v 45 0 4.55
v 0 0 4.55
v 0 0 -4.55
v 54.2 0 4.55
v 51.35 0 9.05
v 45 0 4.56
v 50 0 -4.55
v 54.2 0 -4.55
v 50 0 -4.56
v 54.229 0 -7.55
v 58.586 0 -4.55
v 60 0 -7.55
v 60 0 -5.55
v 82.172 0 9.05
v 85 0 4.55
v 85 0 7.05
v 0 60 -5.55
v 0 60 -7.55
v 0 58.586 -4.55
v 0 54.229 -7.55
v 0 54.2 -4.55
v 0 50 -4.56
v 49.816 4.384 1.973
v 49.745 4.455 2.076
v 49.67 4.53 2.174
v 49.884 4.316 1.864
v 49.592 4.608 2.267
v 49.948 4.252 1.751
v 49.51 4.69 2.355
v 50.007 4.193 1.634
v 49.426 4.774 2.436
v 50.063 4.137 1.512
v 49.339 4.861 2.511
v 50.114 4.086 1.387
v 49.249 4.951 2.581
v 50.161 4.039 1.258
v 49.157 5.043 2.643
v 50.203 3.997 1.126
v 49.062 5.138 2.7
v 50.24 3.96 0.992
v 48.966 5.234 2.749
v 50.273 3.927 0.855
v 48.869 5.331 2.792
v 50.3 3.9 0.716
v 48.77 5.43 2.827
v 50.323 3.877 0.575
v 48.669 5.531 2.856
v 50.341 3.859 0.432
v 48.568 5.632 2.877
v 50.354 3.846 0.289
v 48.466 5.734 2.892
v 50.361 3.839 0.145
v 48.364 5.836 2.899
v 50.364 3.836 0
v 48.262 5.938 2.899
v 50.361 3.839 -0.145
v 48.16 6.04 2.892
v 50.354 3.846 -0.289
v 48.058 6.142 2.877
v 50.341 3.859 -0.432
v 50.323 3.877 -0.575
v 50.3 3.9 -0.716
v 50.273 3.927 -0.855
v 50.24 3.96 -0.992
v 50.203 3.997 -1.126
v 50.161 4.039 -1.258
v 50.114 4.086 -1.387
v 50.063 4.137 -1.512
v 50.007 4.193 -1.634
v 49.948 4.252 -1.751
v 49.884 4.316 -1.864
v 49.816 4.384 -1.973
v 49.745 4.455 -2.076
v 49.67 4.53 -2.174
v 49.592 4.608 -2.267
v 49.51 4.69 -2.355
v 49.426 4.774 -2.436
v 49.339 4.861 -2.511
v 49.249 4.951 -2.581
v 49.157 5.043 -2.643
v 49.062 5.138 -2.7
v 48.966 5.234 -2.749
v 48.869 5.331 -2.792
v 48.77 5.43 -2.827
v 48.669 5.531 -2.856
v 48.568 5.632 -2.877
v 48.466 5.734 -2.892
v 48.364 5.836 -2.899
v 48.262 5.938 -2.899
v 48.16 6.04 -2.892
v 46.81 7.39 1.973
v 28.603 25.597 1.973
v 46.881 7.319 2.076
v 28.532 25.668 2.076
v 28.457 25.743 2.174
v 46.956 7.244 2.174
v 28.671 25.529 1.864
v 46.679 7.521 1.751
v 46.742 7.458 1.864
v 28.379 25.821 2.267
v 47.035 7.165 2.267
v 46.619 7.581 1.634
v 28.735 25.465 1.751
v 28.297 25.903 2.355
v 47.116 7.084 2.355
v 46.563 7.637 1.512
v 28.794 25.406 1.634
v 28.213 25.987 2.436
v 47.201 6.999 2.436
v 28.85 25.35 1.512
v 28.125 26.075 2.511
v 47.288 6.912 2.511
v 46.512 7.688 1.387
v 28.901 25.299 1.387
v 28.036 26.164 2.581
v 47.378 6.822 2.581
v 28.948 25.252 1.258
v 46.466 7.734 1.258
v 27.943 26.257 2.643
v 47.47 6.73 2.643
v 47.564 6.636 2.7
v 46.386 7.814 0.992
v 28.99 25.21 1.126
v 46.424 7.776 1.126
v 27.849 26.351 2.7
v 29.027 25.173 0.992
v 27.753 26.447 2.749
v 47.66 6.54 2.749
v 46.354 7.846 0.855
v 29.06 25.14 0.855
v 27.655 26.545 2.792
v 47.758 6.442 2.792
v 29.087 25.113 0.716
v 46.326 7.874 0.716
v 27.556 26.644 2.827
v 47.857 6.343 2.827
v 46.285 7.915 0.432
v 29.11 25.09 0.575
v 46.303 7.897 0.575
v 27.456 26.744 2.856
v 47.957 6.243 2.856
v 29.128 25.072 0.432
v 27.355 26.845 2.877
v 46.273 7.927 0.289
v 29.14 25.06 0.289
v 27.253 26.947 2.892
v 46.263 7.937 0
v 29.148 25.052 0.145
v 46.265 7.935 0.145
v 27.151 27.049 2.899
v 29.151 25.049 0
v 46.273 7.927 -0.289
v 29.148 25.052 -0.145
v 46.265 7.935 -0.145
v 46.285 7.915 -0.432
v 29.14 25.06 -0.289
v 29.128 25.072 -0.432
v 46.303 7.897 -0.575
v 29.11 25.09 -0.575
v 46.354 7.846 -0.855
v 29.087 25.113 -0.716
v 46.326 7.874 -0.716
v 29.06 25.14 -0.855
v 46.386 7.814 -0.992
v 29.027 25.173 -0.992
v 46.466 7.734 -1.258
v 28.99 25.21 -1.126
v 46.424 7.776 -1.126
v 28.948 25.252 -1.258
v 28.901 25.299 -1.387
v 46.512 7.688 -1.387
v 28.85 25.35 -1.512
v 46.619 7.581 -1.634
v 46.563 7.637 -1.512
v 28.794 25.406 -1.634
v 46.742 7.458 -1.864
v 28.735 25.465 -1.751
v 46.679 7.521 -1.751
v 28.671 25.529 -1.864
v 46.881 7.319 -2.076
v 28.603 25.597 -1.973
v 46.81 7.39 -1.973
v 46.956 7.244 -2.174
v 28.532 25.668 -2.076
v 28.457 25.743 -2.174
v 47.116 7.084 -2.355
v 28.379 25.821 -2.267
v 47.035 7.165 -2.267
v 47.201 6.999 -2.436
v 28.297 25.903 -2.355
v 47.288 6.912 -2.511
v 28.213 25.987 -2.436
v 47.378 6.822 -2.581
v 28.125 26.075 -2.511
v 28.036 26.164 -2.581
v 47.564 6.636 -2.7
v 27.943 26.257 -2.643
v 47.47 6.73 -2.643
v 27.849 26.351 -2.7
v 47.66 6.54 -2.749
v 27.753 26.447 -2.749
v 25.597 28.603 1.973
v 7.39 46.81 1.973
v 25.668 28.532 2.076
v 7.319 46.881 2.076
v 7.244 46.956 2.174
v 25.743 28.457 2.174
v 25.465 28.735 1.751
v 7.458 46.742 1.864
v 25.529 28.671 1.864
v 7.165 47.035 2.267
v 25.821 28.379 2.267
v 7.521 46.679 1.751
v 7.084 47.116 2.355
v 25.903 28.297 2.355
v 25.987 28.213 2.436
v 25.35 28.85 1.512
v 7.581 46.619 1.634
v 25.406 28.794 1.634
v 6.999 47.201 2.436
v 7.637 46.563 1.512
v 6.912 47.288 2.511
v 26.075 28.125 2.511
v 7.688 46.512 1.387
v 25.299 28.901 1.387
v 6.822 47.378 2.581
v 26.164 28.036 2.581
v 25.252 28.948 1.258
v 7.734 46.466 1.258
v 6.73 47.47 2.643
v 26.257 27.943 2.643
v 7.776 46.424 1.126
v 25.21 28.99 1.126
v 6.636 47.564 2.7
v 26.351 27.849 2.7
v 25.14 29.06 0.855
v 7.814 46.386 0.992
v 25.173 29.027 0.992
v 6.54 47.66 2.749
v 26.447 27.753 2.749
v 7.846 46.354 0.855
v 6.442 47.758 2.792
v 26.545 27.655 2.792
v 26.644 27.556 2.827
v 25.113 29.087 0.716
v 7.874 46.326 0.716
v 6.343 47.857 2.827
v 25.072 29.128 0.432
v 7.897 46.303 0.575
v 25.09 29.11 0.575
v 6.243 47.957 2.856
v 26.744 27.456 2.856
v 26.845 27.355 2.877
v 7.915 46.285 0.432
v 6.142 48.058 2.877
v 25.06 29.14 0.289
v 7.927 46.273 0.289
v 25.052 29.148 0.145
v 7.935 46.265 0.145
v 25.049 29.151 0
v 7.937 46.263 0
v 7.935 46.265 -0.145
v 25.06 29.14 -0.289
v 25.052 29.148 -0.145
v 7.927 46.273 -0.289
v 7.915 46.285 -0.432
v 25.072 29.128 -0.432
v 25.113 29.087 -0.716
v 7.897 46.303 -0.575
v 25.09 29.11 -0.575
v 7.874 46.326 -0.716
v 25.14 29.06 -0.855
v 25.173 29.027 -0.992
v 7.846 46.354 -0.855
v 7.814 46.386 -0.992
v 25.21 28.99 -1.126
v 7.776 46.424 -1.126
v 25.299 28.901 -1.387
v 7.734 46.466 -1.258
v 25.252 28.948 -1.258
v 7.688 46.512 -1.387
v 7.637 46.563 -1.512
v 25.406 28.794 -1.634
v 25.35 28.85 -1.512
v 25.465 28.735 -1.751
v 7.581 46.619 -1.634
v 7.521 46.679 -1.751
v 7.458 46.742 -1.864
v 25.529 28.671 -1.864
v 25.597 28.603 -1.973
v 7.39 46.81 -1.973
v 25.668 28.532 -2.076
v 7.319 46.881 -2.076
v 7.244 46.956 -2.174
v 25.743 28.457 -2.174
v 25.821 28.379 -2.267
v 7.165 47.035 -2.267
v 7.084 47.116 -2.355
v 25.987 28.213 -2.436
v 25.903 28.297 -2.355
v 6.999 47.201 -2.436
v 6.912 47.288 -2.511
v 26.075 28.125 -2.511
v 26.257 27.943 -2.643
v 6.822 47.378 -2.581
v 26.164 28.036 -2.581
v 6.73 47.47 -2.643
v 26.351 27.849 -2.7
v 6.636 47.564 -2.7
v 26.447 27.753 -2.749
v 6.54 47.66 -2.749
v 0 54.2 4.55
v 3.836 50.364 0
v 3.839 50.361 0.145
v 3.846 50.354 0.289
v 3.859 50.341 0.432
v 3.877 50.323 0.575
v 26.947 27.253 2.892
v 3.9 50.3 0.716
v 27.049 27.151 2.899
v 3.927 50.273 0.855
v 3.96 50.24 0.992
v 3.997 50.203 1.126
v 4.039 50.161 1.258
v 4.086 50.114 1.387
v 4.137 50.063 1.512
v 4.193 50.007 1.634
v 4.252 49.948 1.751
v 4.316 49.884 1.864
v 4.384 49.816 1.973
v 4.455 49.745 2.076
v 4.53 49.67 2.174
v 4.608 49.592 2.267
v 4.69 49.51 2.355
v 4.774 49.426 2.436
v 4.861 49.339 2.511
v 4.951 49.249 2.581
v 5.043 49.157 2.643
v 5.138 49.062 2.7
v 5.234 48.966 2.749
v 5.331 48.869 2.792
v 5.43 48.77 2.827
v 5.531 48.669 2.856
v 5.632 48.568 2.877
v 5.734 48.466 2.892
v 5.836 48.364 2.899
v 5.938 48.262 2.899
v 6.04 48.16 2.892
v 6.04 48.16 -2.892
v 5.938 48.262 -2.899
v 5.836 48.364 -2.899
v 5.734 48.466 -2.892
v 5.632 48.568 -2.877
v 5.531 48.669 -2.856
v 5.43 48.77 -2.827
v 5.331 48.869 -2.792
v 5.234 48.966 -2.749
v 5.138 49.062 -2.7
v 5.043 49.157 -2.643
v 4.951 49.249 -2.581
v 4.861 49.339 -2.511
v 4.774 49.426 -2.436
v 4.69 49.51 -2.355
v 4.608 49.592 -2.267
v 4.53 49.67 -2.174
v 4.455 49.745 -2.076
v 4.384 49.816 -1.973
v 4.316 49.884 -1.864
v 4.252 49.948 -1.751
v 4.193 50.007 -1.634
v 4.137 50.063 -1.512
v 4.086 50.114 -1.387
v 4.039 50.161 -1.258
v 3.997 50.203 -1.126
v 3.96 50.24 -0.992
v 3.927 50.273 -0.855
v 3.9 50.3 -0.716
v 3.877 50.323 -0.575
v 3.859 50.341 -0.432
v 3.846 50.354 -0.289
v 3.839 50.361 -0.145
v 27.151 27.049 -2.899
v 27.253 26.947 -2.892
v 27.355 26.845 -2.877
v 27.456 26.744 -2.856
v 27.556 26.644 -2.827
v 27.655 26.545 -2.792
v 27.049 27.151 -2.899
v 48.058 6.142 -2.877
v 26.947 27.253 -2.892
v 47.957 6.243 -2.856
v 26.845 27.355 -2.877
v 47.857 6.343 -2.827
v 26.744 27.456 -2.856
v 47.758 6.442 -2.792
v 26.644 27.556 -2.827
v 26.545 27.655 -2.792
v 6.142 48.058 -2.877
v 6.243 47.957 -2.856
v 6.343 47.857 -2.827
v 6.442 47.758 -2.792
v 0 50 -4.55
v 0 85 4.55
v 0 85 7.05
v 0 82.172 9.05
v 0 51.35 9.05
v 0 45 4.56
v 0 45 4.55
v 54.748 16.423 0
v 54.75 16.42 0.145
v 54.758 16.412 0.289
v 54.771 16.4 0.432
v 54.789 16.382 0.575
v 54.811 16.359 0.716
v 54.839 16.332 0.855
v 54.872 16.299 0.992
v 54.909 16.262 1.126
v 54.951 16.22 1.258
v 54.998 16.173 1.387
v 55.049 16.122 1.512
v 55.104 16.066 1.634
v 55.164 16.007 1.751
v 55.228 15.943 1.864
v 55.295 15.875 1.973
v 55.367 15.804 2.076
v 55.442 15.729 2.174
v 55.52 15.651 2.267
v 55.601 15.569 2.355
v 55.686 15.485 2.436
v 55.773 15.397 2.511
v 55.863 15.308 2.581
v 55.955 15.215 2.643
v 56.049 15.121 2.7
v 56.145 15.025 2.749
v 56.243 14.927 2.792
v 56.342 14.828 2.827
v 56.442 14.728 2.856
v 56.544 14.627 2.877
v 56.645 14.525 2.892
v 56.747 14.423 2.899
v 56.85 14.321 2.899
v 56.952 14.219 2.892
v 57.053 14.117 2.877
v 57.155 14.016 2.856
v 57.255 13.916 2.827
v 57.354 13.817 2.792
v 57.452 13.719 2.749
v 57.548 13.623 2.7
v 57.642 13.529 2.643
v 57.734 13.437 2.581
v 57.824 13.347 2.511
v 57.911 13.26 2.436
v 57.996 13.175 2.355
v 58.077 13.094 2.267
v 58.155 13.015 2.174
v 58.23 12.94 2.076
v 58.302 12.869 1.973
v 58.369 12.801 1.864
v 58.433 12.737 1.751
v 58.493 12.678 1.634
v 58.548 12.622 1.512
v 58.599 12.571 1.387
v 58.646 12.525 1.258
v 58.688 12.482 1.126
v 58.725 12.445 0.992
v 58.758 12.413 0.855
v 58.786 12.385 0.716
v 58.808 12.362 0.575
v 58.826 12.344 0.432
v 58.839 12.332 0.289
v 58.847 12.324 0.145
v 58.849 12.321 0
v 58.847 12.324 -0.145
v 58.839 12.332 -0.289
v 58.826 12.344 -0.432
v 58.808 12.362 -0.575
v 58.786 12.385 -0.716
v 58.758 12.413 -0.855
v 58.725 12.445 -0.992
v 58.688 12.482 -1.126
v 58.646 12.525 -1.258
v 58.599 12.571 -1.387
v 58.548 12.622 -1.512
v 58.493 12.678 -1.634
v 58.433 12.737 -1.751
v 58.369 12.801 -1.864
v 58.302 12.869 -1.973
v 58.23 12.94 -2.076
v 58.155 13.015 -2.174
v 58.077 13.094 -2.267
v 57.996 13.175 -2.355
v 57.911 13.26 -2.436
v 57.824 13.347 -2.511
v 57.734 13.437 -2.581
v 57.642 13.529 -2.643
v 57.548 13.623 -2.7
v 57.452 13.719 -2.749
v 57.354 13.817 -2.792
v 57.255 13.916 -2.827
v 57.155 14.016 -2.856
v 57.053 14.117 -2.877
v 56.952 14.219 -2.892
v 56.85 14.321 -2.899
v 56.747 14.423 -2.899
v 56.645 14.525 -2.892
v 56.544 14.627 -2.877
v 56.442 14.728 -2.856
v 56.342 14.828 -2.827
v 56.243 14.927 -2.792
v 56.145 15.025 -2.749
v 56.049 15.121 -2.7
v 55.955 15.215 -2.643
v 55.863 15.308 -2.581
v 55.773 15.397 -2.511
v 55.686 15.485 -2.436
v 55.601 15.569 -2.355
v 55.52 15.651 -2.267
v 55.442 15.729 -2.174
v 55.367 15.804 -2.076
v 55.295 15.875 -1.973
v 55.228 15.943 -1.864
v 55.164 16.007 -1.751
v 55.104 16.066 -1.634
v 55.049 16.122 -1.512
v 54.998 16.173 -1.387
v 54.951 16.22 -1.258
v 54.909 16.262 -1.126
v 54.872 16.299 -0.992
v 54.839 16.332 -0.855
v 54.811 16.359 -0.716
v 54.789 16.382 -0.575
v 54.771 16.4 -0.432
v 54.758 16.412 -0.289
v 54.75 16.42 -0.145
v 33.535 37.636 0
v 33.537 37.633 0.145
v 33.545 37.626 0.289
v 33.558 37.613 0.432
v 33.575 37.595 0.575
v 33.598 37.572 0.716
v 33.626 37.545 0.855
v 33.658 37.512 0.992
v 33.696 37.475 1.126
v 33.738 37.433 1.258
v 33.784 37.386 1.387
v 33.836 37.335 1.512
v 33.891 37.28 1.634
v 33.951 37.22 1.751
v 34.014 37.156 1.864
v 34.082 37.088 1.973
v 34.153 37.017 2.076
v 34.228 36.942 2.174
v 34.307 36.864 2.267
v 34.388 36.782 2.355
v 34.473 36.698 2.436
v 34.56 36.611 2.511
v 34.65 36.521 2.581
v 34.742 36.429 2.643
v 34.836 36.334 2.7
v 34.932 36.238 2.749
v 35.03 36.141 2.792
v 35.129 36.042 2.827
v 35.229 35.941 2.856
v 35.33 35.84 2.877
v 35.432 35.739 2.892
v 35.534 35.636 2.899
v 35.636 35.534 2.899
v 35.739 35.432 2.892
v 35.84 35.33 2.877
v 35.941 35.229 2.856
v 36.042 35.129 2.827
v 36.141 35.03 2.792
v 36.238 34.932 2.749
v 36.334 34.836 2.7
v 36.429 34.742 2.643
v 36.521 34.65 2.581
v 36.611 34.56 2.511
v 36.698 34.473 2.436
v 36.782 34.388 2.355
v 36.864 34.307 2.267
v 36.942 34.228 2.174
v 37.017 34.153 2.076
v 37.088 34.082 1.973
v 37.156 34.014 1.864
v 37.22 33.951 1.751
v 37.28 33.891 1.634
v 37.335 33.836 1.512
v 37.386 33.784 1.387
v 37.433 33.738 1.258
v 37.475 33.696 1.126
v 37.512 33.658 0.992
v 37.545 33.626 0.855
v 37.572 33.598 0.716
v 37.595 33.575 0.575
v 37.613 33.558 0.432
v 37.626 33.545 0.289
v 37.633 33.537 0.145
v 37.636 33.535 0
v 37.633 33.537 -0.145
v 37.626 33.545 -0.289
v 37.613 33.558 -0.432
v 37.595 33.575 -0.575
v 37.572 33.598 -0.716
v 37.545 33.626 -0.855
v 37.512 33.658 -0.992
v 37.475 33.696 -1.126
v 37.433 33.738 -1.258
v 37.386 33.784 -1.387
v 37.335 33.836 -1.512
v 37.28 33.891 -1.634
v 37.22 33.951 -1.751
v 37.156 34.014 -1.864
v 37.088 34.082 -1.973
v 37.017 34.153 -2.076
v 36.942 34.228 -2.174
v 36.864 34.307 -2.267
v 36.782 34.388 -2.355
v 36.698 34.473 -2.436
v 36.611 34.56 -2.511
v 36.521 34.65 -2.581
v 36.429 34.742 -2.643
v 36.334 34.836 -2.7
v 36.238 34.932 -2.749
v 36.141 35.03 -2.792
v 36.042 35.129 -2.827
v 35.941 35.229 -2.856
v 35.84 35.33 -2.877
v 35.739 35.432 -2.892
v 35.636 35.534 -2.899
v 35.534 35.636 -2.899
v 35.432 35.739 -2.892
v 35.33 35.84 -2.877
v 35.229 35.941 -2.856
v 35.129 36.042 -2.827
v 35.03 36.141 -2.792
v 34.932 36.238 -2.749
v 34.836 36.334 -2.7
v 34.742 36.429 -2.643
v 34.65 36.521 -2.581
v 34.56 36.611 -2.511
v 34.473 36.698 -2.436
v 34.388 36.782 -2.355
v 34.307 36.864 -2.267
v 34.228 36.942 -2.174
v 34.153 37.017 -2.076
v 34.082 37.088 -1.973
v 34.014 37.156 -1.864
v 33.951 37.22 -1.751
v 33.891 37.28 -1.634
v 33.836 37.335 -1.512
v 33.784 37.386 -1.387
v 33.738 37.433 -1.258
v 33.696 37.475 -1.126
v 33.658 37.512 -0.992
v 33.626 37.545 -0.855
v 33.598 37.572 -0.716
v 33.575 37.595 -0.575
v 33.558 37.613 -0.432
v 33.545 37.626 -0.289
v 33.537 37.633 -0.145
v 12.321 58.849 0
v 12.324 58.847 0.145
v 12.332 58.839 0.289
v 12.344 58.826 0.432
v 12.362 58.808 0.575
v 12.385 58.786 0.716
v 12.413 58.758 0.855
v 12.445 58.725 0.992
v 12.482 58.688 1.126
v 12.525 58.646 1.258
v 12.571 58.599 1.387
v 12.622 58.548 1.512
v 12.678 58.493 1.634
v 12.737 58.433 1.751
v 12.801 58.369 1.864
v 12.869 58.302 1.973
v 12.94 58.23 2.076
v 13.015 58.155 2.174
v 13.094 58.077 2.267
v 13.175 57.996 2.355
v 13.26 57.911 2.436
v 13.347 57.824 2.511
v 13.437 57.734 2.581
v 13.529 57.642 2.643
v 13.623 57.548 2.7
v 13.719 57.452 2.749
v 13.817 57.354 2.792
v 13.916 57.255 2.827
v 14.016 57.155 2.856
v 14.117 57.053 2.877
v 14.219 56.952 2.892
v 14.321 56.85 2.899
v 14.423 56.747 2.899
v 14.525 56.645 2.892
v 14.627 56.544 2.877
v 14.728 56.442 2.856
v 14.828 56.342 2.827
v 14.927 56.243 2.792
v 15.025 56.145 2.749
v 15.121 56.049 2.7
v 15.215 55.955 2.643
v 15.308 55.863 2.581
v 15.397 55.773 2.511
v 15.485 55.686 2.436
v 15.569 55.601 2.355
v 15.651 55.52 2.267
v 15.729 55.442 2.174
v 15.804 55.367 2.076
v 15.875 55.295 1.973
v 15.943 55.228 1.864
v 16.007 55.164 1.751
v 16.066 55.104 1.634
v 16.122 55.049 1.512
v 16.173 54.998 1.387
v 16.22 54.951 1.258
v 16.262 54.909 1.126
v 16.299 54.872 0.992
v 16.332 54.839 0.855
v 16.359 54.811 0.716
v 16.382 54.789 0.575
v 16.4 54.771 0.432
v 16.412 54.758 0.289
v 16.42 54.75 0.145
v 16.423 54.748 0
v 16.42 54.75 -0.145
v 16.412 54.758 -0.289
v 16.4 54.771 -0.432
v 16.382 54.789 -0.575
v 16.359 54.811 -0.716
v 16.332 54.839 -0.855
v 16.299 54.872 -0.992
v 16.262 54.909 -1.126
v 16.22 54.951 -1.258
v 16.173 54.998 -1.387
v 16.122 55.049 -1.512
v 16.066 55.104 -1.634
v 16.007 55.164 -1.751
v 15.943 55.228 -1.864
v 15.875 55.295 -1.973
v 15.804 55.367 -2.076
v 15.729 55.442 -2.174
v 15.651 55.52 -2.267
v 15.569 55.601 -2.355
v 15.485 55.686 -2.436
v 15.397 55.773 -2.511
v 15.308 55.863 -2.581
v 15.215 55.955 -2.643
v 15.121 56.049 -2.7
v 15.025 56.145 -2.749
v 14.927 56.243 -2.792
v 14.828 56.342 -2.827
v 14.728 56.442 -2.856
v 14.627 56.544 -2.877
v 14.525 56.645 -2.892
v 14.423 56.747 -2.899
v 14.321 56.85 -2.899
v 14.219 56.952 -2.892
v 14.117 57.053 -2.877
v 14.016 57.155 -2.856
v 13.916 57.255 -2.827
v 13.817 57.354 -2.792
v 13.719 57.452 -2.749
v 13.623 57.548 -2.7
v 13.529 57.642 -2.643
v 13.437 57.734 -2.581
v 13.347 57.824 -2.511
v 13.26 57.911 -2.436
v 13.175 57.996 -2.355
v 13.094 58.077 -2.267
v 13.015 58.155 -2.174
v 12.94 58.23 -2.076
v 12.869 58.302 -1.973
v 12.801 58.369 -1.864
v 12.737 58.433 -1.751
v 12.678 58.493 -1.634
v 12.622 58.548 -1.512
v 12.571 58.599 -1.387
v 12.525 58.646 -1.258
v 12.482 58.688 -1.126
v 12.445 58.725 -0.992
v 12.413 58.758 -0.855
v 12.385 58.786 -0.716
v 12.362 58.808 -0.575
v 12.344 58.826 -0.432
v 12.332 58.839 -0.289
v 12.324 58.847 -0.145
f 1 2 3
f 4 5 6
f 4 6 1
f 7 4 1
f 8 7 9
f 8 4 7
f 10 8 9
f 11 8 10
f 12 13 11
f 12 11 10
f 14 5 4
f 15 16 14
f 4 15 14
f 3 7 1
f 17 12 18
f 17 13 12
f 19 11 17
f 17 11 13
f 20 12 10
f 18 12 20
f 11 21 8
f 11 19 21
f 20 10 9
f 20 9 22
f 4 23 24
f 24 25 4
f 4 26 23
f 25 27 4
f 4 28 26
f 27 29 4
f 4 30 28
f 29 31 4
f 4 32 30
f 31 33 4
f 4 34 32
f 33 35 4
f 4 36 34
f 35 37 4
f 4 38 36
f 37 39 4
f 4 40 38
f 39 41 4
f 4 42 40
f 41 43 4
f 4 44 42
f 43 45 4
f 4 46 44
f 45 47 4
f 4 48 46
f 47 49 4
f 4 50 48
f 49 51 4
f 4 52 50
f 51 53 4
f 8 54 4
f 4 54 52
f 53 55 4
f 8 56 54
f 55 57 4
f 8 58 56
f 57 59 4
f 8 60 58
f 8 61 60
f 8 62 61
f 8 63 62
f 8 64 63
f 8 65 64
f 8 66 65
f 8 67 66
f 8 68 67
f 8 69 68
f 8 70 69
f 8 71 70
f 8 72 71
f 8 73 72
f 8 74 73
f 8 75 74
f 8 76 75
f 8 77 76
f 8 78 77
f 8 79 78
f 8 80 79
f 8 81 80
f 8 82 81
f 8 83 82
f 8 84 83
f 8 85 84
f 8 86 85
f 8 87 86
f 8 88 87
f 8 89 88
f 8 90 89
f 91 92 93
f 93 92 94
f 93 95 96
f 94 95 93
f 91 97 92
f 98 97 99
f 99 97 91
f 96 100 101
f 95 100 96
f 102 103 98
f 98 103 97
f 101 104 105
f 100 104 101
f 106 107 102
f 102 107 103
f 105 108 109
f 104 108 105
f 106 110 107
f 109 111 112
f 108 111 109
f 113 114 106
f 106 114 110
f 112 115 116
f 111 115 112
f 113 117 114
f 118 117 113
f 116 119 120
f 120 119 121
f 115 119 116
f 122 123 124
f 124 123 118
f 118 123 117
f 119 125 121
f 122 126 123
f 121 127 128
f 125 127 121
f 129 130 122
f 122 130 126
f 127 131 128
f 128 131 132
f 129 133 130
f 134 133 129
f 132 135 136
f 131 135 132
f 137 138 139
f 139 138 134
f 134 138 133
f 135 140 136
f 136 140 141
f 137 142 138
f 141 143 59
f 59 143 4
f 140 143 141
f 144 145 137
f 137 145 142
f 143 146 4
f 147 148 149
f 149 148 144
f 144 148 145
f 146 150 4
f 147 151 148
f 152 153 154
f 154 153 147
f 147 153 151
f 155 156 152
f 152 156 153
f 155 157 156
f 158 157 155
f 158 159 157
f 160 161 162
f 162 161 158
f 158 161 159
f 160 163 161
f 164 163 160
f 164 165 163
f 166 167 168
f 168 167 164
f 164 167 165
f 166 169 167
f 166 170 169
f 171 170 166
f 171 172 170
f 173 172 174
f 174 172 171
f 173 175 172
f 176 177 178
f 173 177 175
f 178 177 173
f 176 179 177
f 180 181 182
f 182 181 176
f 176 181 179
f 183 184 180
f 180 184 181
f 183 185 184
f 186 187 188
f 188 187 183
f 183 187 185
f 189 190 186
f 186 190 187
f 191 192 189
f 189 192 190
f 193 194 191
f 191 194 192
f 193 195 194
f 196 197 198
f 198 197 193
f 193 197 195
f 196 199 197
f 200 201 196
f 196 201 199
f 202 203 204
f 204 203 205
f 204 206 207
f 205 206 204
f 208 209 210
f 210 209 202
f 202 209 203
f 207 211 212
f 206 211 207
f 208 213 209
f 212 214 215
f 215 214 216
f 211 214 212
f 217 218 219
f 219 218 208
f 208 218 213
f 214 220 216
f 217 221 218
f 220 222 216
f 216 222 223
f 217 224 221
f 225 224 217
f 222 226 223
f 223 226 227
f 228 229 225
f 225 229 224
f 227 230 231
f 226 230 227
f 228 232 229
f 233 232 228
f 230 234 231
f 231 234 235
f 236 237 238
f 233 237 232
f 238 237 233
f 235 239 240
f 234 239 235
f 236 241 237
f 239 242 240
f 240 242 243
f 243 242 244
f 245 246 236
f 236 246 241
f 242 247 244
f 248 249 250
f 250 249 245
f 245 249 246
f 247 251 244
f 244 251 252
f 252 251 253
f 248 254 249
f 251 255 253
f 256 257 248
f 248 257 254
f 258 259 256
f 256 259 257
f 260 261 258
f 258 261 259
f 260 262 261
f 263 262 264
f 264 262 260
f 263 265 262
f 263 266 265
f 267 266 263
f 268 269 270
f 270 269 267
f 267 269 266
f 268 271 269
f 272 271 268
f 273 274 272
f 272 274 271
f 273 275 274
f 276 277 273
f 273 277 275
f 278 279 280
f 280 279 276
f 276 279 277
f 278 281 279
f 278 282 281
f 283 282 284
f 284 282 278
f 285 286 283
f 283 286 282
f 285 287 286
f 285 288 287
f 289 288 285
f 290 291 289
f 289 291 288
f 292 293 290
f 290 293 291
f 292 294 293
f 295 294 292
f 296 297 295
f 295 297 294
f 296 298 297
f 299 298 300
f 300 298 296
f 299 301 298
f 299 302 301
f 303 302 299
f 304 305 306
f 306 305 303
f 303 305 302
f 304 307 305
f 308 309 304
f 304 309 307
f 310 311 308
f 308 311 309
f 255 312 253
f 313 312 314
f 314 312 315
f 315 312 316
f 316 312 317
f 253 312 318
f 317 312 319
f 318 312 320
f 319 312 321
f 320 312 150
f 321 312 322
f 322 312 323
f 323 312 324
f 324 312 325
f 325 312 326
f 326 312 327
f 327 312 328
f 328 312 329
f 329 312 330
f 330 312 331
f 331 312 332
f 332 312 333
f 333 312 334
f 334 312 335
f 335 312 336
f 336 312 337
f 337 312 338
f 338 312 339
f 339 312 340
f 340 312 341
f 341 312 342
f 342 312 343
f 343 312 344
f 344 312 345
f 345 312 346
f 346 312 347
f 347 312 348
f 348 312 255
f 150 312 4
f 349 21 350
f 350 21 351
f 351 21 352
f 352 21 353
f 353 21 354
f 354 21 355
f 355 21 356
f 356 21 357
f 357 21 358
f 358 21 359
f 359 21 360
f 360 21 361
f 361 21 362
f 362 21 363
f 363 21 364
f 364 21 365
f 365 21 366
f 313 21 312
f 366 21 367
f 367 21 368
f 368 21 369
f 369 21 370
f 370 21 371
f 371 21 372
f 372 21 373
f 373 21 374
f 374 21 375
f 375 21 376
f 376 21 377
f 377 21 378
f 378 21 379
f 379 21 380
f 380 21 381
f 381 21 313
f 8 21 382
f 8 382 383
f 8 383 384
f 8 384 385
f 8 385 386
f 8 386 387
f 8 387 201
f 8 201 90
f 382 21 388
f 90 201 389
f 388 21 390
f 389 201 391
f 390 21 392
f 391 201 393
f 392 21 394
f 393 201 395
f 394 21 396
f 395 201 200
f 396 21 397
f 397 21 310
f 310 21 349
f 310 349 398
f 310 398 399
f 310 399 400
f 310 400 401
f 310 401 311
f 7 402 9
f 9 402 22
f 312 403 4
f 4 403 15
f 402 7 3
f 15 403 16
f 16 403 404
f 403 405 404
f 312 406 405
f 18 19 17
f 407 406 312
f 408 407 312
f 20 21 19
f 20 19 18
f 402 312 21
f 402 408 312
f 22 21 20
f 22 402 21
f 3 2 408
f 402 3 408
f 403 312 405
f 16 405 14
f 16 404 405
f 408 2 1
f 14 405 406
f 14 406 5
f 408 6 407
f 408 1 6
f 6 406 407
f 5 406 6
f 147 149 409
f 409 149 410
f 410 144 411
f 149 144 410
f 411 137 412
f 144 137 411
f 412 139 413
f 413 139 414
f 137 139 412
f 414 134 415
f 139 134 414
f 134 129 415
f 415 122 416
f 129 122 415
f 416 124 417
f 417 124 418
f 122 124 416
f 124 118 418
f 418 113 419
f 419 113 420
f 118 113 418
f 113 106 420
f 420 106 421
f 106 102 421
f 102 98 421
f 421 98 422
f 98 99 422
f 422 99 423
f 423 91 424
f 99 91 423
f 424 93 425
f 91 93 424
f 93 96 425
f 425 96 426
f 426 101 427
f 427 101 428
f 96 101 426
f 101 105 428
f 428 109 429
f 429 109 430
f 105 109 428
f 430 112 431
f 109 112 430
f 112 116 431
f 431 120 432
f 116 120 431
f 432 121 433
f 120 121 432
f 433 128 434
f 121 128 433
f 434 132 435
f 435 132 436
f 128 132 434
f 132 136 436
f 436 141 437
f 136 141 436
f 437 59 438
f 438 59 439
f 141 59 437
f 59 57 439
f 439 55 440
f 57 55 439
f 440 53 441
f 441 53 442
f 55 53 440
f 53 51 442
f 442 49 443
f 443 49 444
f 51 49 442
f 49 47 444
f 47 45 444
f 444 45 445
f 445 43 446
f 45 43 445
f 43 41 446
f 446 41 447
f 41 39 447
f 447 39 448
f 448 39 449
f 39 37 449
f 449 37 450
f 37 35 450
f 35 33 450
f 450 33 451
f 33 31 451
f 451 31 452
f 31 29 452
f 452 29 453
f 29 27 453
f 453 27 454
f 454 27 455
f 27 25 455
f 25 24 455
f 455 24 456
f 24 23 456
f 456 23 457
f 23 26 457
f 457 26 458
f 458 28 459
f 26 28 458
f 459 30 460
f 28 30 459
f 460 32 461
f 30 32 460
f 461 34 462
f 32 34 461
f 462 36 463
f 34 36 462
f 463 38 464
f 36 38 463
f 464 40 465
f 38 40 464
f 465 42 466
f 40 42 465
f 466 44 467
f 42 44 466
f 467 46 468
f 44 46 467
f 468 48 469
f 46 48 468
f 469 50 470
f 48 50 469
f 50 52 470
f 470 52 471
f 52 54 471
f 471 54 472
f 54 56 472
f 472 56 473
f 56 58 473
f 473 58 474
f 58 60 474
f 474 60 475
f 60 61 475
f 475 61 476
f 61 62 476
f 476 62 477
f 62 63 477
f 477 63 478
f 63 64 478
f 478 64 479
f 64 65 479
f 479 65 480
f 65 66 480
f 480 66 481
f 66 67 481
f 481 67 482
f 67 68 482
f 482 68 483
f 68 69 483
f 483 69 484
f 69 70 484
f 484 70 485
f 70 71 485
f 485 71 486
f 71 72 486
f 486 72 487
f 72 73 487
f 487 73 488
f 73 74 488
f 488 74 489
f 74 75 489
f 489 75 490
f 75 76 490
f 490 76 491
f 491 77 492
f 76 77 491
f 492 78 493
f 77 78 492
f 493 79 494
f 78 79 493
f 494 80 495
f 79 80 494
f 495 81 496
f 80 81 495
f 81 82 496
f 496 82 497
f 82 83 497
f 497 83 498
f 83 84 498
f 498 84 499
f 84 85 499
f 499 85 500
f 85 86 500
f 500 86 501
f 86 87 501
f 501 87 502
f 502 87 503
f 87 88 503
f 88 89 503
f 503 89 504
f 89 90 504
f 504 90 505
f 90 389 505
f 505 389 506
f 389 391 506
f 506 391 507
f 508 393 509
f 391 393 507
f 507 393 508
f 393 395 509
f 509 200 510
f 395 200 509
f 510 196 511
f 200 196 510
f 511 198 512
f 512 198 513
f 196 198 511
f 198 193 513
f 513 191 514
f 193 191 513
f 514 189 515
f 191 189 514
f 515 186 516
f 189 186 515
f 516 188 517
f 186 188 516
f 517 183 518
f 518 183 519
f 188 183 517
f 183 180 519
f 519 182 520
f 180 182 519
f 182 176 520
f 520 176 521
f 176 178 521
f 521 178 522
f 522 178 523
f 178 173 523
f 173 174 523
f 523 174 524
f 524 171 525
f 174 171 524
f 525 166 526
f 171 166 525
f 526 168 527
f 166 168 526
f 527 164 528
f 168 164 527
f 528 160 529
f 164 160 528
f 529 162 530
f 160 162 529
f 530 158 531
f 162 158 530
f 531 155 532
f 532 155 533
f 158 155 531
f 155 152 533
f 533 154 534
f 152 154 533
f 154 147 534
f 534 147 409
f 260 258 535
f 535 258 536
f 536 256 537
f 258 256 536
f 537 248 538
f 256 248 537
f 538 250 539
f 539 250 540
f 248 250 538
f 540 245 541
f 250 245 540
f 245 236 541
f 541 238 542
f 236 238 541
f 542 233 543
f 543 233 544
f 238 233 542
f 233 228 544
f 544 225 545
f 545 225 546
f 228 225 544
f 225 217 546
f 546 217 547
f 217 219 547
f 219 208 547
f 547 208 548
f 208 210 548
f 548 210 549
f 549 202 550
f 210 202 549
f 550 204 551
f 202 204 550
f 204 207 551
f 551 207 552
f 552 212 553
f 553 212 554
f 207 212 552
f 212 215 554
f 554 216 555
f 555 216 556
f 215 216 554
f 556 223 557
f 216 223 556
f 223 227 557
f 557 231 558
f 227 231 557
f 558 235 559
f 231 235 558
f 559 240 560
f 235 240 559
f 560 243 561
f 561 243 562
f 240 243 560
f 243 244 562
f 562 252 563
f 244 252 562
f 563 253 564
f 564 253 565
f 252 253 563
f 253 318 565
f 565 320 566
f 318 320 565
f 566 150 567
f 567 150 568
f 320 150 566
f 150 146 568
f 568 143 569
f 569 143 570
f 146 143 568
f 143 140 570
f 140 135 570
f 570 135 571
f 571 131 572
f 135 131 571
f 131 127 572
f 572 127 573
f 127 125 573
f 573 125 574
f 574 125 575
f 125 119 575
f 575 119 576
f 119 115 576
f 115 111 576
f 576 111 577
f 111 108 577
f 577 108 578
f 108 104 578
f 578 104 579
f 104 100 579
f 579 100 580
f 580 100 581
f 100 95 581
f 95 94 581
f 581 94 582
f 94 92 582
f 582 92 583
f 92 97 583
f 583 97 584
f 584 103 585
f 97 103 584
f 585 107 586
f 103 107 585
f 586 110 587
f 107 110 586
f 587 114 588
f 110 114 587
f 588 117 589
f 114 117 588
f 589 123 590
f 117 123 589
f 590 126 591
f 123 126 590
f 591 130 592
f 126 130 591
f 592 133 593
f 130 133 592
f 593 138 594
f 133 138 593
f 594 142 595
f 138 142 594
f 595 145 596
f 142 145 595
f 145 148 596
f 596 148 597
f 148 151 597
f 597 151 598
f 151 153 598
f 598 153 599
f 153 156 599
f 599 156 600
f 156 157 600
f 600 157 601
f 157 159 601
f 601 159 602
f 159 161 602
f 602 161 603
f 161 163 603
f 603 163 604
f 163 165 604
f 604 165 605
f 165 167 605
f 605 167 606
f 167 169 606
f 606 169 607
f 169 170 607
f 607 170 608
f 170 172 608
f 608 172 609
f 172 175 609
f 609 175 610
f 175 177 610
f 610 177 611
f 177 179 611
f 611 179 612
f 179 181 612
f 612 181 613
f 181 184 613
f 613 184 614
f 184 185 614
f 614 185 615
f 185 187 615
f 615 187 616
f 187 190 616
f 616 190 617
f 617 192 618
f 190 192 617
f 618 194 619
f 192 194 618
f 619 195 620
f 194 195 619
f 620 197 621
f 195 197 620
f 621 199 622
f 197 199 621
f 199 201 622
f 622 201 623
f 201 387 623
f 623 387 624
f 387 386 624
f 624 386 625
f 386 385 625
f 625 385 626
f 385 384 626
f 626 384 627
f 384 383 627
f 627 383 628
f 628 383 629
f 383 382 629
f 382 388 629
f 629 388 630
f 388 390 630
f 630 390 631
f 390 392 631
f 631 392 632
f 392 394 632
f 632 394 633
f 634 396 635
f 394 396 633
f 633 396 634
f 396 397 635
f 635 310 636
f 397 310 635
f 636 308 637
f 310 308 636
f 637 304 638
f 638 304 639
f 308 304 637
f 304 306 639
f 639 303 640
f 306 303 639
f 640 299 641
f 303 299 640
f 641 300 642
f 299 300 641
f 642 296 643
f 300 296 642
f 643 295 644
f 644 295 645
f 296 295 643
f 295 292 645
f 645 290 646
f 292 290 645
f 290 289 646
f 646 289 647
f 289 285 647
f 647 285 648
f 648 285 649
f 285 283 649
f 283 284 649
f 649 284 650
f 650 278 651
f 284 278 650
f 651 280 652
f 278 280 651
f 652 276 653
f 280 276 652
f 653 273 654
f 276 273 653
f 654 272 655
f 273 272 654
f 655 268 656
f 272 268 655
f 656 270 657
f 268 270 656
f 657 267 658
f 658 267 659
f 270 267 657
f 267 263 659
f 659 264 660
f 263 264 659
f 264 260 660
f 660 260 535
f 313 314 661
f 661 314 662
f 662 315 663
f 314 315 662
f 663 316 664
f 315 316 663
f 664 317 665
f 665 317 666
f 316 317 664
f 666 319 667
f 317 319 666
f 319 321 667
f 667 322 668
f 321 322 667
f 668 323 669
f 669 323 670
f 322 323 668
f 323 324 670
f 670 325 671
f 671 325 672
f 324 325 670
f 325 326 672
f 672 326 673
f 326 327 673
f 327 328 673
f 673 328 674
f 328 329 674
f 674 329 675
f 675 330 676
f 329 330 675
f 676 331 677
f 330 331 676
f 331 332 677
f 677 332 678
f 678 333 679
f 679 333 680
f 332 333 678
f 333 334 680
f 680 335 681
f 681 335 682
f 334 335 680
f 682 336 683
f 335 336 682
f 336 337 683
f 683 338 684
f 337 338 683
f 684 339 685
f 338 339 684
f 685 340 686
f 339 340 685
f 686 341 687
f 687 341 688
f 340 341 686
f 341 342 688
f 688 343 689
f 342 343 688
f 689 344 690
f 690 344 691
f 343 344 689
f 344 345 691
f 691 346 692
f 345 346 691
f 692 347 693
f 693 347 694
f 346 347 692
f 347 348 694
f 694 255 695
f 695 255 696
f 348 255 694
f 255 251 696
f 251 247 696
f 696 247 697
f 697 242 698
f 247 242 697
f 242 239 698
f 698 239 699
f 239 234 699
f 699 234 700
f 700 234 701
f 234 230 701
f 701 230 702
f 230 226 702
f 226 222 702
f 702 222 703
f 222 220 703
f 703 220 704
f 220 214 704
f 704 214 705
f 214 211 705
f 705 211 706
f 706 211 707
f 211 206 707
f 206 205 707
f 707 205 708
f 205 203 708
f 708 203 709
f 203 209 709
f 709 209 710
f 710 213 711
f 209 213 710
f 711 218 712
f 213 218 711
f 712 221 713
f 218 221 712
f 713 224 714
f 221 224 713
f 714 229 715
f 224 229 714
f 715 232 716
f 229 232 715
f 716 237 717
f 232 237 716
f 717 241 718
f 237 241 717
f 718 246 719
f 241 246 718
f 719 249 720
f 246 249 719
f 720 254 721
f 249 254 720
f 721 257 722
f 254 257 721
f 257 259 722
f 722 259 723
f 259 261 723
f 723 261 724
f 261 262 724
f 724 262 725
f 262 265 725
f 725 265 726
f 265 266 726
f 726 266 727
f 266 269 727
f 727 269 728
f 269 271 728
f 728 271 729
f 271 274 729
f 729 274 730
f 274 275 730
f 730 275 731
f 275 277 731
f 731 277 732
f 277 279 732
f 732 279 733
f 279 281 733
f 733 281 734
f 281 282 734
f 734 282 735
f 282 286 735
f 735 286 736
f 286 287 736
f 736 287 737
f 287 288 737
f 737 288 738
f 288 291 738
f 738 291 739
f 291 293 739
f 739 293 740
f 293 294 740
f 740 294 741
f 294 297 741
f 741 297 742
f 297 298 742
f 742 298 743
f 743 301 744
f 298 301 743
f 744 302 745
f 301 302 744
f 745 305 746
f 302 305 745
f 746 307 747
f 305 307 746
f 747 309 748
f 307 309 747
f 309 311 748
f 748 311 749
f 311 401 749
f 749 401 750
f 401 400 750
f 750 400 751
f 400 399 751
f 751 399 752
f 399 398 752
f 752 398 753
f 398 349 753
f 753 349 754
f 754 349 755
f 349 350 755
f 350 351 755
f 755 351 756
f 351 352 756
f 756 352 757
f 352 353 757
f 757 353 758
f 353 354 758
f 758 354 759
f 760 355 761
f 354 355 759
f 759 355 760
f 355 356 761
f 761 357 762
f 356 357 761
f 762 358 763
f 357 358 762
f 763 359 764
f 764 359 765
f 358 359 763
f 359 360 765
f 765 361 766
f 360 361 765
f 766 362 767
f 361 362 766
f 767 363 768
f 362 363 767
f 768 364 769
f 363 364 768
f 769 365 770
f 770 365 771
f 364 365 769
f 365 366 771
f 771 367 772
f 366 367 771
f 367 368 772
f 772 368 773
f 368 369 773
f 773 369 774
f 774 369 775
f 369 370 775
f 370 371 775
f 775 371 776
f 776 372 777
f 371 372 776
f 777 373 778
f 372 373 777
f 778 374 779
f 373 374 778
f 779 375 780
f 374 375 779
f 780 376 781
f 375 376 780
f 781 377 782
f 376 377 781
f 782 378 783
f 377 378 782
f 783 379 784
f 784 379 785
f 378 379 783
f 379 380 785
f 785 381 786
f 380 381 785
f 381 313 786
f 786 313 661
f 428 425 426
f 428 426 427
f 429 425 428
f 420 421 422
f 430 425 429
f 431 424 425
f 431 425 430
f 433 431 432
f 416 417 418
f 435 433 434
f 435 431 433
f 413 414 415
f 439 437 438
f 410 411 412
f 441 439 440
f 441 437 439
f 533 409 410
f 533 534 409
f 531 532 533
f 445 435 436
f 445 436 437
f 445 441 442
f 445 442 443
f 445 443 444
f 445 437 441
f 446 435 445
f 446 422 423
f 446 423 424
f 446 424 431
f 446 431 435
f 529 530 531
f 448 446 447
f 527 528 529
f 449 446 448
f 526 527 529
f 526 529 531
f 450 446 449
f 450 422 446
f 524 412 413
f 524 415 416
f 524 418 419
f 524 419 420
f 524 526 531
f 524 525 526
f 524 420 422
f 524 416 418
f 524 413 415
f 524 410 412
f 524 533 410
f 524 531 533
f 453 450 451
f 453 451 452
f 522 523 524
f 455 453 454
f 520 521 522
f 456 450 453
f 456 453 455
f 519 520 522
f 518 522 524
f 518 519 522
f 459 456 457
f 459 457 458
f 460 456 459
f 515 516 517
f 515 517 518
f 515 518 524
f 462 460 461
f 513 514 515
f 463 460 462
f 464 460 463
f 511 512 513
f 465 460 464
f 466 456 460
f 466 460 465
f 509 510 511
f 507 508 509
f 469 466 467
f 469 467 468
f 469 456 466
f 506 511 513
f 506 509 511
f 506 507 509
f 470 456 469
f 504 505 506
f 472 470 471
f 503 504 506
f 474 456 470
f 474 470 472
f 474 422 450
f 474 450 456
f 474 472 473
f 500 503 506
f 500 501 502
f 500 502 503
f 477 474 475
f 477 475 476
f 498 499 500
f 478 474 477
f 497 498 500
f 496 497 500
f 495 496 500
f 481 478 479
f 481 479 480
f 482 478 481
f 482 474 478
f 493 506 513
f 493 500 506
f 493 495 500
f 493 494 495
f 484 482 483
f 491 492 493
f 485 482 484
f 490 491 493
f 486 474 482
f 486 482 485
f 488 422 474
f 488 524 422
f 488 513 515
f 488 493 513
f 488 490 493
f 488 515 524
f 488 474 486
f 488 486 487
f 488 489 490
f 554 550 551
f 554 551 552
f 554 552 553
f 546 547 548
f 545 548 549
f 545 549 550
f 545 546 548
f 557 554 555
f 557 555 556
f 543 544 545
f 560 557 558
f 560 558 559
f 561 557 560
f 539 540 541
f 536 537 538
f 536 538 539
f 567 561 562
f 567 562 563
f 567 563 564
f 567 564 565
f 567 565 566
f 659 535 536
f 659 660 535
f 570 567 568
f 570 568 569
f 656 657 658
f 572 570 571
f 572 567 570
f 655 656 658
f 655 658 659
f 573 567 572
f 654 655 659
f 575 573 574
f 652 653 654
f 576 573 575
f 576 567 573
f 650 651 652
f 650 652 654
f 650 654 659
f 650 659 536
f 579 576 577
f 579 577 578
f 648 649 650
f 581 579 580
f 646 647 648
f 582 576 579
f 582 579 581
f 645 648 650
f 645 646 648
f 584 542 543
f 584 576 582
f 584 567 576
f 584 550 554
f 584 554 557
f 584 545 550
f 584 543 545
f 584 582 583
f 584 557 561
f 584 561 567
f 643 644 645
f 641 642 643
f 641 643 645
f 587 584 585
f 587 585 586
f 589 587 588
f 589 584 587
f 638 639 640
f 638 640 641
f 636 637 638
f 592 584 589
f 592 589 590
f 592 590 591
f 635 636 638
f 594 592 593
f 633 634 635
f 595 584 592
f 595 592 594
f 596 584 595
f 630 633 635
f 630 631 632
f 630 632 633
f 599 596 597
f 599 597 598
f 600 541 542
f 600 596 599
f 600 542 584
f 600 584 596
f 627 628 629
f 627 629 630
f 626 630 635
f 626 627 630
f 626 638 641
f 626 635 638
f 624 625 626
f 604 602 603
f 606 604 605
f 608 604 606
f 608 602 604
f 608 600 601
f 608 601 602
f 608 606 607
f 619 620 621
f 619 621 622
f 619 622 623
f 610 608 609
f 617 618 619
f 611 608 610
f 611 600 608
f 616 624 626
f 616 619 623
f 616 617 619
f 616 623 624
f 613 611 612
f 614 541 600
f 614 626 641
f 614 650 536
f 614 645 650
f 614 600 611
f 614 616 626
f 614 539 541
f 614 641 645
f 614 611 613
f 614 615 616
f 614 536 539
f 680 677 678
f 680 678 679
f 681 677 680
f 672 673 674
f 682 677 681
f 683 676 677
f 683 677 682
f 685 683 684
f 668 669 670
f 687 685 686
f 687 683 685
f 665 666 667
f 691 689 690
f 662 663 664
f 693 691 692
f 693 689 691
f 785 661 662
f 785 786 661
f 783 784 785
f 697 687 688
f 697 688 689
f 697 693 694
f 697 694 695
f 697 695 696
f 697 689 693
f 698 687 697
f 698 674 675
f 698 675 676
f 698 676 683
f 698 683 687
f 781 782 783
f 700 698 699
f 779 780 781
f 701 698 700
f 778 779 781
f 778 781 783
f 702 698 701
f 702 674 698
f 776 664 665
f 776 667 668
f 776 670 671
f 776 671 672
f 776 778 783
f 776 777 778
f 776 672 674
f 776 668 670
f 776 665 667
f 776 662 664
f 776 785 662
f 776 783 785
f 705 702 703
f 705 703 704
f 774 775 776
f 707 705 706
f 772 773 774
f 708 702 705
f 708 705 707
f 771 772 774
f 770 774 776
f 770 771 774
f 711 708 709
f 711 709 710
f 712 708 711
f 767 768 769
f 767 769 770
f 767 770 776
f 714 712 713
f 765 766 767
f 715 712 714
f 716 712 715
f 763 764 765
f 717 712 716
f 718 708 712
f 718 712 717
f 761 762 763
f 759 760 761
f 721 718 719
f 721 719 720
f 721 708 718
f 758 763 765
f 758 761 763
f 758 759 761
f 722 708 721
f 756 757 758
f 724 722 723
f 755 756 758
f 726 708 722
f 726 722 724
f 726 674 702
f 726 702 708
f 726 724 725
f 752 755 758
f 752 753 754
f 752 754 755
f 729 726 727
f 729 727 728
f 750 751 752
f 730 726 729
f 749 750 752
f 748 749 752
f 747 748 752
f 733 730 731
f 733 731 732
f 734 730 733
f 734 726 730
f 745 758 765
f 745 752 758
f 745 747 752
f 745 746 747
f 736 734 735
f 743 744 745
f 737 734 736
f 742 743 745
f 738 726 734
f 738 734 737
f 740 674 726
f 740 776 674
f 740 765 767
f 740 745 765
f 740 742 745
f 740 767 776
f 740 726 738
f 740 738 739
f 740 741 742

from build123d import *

# Parameters (mm, degrees)
PAD_DEPTH              = 4.55
SKETCH001_R            = 2.9
PAD001_DEPTH           = 12
LINEARPATTERN_COUNT    = 2
LINEARPATTERN_PITCH    = 30
LINEARPATTERN001_COUNT = 2
LINEARPATTERN001_PITCH = 30
PAD002_DEPTH           = 4.5
CHAMFER_SIZE           = 4.49
CHAMFER001_SIZE        = 2
PAD003_DEPTH           = 3
CHAMFER002_SIZE        = 2.99
CHAMFER003_SIZE        = 1


with BuildPart() as part:
    # Sketch → Pad (new body, symmetric)
    with BuildSketch(Plane.XY):
        Polygon((0, 0), (54.2, 0), (0, 54.2), align=None)
    extrude(amount=PAD_DEPTH, both=True)

    # Sketch001 (on Face2 of Pad) → Pad001 (join)
    with BuildSketch(Plane(origin=(27.1, 27.1, 0), x_dir=(-0.707107, 0.707107, 0), z_dir=(0.707107, 0.707107, 0))):
        Circle(SKETCH001_R)
    pad001 = extrude(amount=PAD001_DEPTH)

    # LinearPattern: Pad001 ×2
    with Locations(*[Vector(-0.707107, 0.707107, 0) * (i * LINEARPATTERN_PITCH) for i in range(1, LINEARPATTERN_COUNT)]):
        add(pad001)

    # LinearPattern001: Pad001 ×2
    with Locations(*[Vector(0.707107, -0.707107, 0) * (i * LINEARPATTERN001_PITCH) for i in range(1, LINEARPATTERN001_COUNT)]):
        add(pad001)

    # Sketch002 (on Face5 of LinearPattern001) → Pad002 (join)
    with BuildSketch(Plane.XY.offset(4.55)):
        Polygon((0, 85), (0, 45), (45, 0), (85, 0), align=None)
    extrude(amount=PAD002_DEPTH)

    # Chamfer
    chamfer_edges = [part.edges().sort_by_distance(p)[0] for p in [
        (22.5, 22.5, 9.05),
    ]]
    chamfer(chamfer_edges, length=CHAMFER_SIZE)

    # Chamfer001
    chamfer001_edges = [part.edges().sort_by_distance(p)[0] for p in [
        (42.5, 42.5, 9.05),
    ]]
    chamfer(chamfer001_edges, length=CHAMFER001_SIZE)

    # Sketch003 (on Face11 of Chamfer001) → Pad003 (join)
    with BuildSketch(Plane(origin=(0, 0, -4.55), x_dir=(1, 0, 0), z_dir=(0, 0, -1))):
        Polygon((60, 0), (50, 0), (0, -50), (0, -60), align=None)
    extrude(amount=PAD003_DEPTH)

    # Chamfer002
    chamfer002_edges = [part.edges().sort_by_distance(p)[0] for p in [
        (25, 25, -7.55),
    ]]
    chamfer(chamfer002_edges, length=CHAMFER002_SIZE)

    # Chamfer003
    chamfer003_edges = [part.edges().sort_by_distance(p)[0] for p in [
        (30, 30, -4.55),
    ]]
    chamfer(chamfer003_edges, length=CHAMFER003_SIZE)


solid = part.part
